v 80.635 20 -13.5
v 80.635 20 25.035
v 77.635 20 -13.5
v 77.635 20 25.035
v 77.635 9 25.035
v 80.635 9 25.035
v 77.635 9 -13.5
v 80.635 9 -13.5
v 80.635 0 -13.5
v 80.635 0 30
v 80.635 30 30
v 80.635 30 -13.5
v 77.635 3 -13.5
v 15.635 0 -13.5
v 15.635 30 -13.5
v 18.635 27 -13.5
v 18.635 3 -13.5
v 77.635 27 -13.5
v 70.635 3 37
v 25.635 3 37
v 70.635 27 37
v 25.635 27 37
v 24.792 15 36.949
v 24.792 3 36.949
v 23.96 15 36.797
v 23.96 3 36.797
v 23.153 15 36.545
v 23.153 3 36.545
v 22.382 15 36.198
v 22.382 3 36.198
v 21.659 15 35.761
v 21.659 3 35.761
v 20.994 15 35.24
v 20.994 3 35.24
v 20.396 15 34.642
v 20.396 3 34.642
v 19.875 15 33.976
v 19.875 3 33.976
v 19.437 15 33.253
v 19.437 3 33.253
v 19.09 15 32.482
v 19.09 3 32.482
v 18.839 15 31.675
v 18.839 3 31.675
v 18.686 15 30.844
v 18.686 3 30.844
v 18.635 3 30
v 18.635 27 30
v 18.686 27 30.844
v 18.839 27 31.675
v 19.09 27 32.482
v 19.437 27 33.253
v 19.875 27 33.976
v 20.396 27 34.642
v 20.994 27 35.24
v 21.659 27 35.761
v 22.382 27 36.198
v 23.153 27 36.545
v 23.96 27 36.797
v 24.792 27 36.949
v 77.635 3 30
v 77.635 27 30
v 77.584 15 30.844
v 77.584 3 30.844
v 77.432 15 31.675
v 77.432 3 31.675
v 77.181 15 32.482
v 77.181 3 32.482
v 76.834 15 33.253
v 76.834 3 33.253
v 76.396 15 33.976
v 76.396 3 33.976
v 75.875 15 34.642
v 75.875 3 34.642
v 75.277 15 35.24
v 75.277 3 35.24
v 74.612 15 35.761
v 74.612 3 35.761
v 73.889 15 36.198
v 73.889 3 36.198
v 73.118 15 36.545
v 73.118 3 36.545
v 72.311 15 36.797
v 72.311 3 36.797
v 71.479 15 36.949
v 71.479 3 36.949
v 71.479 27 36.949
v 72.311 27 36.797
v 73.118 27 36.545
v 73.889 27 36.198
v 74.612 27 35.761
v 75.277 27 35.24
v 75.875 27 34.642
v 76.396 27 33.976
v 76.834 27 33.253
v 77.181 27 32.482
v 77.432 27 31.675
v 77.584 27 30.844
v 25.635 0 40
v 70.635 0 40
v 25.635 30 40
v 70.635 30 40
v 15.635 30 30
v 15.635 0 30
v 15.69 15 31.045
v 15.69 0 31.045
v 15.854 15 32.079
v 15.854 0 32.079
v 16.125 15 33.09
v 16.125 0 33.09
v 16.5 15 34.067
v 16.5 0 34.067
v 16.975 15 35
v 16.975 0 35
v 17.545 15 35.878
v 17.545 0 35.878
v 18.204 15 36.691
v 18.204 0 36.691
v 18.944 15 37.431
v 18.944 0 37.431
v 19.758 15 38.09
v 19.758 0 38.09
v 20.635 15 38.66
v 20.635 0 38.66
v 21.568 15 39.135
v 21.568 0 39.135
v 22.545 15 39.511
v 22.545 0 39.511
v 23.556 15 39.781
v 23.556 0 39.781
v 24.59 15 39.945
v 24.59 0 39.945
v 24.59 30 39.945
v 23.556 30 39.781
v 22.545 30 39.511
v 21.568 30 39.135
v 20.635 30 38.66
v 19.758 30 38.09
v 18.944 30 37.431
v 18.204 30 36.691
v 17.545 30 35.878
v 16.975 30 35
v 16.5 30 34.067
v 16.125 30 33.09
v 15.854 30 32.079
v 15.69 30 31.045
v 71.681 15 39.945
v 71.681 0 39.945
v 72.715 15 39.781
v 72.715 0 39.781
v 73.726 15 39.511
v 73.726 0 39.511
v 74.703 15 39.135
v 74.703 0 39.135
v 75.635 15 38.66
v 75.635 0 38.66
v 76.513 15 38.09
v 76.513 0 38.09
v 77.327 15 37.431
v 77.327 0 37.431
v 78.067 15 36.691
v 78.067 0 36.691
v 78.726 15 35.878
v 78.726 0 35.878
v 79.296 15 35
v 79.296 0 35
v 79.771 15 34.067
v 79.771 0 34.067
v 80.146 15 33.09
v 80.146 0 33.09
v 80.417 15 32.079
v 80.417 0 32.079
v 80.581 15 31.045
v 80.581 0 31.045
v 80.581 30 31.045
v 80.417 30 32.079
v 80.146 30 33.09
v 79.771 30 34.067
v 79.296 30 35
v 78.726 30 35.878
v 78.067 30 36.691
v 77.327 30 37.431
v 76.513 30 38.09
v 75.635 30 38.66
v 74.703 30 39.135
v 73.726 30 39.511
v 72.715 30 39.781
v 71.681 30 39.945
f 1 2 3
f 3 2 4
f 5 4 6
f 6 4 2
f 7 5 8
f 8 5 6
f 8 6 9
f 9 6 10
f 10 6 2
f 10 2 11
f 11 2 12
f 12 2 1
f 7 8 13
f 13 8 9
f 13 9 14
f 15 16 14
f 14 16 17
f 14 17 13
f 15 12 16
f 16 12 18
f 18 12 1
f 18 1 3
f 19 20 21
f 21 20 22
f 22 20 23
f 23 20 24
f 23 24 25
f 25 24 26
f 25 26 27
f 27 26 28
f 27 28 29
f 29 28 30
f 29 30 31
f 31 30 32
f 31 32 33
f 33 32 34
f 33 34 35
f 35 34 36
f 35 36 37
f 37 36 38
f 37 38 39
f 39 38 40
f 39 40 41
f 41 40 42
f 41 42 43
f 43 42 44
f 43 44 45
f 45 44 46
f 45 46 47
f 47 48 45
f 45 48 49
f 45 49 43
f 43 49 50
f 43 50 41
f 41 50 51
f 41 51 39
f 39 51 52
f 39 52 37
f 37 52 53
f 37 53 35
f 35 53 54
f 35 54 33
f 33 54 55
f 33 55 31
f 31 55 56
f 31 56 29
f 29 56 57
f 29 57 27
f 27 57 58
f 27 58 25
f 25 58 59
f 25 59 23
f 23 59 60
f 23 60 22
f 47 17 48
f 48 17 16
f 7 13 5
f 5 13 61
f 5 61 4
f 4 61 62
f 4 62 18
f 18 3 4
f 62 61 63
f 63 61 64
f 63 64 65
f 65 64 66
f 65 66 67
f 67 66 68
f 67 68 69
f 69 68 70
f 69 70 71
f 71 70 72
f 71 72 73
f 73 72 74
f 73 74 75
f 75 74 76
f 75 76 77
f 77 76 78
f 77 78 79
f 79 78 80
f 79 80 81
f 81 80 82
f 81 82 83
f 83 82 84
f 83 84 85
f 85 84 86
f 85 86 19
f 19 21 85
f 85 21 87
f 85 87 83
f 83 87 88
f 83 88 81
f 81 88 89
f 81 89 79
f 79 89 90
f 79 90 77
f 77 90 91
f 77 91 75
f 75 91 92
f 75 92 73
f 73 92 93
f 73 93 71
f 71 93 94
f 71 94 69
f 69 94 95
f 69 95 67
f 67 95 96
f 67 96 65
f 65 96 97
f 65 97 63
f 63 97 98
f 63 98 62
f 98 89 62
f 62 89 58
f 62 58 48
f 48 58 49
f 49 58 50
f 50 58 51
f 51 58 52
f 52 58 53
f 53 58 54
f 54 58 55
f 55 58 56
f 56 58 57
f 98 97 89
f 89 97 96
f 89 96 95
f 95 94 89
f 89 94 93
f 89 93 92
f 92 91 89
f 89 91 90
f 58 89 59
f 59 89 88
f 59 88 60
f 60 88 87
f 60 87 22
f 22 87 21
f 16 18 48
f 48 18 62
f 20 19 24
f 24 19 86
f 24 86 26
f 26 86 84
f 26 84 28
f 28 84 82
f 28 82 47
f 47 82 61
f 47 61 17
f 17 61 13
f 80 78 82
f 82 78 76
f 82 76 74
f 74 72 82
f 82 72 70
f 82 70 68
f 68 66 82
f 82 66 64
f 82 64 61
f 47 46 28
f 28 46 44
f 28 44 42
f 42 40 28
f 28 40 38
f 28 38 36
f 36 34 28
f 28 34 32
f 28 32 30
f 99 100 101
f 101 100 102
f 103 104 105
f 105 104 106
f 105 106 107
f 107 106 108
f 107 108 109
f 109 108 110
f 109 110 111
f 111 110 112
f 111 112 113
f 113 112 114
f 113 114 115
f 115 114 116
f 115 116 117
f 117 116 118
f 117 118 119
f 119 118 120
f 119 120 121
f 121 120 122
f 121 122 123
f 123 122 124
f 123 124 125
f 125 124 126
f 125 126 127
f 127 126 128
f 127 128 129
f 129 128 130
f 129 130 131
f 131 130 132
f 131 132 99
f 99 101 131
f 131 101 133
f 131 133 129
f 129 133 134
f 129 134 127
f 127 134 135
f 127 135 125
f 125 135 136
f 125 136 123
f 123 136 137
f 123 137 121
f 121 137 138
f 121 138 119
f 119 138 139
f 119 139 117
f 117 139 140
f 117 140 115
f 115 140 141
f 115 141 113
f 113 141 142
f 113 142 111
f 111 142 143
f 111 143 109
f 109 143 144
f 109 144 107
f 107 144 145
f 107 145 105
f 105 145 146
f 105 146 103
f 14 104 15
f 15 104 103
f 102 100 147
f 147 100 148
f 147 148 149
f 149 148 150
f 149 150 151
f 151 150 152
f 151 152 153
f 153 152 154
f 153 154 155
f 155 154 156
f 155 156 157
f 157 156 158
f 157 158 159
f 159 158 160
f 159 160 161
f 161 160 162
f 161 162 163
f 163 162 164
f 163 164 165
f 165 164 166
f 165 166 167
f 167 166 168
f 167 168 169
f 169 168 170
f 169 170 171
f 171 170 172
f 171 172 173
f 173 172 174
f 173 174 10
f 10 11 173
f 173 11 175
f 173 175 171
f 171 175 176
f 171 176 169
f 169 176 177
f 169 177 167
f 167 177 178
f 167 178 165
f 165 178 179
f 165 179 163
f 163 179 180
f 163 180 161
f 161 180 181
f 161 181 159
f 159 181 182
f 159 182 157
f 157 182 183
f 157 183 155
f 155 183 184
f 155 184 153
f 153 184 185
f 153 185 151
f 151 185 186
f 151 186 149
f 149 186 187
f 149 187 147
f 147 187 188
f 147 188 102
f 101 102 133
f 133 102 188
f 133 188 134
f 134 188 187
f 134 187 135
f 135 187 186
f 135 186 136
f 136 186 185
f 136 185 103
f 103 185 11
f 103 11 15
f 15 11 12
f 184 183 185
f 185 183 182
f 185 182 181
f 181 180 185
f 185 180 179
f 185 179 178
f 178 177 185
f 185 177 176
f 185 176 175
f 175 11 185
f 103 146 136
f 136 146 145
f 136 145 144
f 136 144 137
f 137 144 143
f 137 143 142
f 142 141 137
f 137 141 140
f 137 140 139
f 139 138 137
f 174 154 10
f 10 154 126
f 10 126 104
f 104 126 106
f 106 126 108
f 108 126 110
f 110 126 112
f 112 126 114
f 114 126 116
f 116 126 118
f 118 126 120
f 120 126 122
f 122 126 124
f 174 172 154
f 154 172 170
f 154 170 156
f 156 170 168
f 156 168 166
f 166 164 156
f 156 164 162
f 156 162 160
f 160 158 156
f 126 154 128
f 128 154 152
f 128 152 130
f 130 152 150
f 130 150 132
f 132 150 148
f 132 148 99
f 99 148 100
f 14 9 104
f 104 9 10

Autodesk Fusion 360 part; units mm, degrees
sketch "Sketch1" plane through (0, 0, 0) normal (0, 1, 0) x (1, 0, 0)
  line L0 (25.6354, -40) -> (70.6354, -40)
  line L1 (80.6354, -30) -> (80.6354, 13.5)
  line L2 (80.6354, 13.5) -> (15.6354, 13.5)
  line L3 (15.6354, 13.5) -> (15.6354, -30)
  arc A0 (15.6354, -30) -> (25.6354, -40) centre (25.6354, -30) ccw
  arc A1 (70.6354, -40) -> (80.6354, -30) centre (70.6354, -30) ccw
  dimension "d1" = 65
  dimension "d2" = 53.5
  dimension "d3" = 10
  dimension "d4" = 10
extrude "Extrude2" add sketch "Sketch1" along normal blind 30
shell "Shell2" thickness 3 removed faces 1 at (58.9688, 20, -13.5)
sketch "Sketch3" plane through (80.6354, 0, 0) normal (1, 0, 0) x (0, 1, 0)
  line L0 (0, 30) -> (0, -13.5)
  line L1 (0, -13.5) -> (30, -13.5)
  line L2 (30, -13.5) -> (30, 30)
  line L3 (30, 30) -> (0, 30)
  line L4 (9, 25.0348) -> (20, 25.0348)
  line L5 (20, 25.0348) -> (20, -16.6958)
  line L6 (20, -16.6958) -> (9, -16.6958)
  line L7 (9, -16.6958) -> (9, 25.0348)
  dimension "d18" = 11
extrude "Extrude4" cut sketch "Sketch3" against normal blind 10 contours L1 L4 L5 L7 | L1 L5 L6 L7
